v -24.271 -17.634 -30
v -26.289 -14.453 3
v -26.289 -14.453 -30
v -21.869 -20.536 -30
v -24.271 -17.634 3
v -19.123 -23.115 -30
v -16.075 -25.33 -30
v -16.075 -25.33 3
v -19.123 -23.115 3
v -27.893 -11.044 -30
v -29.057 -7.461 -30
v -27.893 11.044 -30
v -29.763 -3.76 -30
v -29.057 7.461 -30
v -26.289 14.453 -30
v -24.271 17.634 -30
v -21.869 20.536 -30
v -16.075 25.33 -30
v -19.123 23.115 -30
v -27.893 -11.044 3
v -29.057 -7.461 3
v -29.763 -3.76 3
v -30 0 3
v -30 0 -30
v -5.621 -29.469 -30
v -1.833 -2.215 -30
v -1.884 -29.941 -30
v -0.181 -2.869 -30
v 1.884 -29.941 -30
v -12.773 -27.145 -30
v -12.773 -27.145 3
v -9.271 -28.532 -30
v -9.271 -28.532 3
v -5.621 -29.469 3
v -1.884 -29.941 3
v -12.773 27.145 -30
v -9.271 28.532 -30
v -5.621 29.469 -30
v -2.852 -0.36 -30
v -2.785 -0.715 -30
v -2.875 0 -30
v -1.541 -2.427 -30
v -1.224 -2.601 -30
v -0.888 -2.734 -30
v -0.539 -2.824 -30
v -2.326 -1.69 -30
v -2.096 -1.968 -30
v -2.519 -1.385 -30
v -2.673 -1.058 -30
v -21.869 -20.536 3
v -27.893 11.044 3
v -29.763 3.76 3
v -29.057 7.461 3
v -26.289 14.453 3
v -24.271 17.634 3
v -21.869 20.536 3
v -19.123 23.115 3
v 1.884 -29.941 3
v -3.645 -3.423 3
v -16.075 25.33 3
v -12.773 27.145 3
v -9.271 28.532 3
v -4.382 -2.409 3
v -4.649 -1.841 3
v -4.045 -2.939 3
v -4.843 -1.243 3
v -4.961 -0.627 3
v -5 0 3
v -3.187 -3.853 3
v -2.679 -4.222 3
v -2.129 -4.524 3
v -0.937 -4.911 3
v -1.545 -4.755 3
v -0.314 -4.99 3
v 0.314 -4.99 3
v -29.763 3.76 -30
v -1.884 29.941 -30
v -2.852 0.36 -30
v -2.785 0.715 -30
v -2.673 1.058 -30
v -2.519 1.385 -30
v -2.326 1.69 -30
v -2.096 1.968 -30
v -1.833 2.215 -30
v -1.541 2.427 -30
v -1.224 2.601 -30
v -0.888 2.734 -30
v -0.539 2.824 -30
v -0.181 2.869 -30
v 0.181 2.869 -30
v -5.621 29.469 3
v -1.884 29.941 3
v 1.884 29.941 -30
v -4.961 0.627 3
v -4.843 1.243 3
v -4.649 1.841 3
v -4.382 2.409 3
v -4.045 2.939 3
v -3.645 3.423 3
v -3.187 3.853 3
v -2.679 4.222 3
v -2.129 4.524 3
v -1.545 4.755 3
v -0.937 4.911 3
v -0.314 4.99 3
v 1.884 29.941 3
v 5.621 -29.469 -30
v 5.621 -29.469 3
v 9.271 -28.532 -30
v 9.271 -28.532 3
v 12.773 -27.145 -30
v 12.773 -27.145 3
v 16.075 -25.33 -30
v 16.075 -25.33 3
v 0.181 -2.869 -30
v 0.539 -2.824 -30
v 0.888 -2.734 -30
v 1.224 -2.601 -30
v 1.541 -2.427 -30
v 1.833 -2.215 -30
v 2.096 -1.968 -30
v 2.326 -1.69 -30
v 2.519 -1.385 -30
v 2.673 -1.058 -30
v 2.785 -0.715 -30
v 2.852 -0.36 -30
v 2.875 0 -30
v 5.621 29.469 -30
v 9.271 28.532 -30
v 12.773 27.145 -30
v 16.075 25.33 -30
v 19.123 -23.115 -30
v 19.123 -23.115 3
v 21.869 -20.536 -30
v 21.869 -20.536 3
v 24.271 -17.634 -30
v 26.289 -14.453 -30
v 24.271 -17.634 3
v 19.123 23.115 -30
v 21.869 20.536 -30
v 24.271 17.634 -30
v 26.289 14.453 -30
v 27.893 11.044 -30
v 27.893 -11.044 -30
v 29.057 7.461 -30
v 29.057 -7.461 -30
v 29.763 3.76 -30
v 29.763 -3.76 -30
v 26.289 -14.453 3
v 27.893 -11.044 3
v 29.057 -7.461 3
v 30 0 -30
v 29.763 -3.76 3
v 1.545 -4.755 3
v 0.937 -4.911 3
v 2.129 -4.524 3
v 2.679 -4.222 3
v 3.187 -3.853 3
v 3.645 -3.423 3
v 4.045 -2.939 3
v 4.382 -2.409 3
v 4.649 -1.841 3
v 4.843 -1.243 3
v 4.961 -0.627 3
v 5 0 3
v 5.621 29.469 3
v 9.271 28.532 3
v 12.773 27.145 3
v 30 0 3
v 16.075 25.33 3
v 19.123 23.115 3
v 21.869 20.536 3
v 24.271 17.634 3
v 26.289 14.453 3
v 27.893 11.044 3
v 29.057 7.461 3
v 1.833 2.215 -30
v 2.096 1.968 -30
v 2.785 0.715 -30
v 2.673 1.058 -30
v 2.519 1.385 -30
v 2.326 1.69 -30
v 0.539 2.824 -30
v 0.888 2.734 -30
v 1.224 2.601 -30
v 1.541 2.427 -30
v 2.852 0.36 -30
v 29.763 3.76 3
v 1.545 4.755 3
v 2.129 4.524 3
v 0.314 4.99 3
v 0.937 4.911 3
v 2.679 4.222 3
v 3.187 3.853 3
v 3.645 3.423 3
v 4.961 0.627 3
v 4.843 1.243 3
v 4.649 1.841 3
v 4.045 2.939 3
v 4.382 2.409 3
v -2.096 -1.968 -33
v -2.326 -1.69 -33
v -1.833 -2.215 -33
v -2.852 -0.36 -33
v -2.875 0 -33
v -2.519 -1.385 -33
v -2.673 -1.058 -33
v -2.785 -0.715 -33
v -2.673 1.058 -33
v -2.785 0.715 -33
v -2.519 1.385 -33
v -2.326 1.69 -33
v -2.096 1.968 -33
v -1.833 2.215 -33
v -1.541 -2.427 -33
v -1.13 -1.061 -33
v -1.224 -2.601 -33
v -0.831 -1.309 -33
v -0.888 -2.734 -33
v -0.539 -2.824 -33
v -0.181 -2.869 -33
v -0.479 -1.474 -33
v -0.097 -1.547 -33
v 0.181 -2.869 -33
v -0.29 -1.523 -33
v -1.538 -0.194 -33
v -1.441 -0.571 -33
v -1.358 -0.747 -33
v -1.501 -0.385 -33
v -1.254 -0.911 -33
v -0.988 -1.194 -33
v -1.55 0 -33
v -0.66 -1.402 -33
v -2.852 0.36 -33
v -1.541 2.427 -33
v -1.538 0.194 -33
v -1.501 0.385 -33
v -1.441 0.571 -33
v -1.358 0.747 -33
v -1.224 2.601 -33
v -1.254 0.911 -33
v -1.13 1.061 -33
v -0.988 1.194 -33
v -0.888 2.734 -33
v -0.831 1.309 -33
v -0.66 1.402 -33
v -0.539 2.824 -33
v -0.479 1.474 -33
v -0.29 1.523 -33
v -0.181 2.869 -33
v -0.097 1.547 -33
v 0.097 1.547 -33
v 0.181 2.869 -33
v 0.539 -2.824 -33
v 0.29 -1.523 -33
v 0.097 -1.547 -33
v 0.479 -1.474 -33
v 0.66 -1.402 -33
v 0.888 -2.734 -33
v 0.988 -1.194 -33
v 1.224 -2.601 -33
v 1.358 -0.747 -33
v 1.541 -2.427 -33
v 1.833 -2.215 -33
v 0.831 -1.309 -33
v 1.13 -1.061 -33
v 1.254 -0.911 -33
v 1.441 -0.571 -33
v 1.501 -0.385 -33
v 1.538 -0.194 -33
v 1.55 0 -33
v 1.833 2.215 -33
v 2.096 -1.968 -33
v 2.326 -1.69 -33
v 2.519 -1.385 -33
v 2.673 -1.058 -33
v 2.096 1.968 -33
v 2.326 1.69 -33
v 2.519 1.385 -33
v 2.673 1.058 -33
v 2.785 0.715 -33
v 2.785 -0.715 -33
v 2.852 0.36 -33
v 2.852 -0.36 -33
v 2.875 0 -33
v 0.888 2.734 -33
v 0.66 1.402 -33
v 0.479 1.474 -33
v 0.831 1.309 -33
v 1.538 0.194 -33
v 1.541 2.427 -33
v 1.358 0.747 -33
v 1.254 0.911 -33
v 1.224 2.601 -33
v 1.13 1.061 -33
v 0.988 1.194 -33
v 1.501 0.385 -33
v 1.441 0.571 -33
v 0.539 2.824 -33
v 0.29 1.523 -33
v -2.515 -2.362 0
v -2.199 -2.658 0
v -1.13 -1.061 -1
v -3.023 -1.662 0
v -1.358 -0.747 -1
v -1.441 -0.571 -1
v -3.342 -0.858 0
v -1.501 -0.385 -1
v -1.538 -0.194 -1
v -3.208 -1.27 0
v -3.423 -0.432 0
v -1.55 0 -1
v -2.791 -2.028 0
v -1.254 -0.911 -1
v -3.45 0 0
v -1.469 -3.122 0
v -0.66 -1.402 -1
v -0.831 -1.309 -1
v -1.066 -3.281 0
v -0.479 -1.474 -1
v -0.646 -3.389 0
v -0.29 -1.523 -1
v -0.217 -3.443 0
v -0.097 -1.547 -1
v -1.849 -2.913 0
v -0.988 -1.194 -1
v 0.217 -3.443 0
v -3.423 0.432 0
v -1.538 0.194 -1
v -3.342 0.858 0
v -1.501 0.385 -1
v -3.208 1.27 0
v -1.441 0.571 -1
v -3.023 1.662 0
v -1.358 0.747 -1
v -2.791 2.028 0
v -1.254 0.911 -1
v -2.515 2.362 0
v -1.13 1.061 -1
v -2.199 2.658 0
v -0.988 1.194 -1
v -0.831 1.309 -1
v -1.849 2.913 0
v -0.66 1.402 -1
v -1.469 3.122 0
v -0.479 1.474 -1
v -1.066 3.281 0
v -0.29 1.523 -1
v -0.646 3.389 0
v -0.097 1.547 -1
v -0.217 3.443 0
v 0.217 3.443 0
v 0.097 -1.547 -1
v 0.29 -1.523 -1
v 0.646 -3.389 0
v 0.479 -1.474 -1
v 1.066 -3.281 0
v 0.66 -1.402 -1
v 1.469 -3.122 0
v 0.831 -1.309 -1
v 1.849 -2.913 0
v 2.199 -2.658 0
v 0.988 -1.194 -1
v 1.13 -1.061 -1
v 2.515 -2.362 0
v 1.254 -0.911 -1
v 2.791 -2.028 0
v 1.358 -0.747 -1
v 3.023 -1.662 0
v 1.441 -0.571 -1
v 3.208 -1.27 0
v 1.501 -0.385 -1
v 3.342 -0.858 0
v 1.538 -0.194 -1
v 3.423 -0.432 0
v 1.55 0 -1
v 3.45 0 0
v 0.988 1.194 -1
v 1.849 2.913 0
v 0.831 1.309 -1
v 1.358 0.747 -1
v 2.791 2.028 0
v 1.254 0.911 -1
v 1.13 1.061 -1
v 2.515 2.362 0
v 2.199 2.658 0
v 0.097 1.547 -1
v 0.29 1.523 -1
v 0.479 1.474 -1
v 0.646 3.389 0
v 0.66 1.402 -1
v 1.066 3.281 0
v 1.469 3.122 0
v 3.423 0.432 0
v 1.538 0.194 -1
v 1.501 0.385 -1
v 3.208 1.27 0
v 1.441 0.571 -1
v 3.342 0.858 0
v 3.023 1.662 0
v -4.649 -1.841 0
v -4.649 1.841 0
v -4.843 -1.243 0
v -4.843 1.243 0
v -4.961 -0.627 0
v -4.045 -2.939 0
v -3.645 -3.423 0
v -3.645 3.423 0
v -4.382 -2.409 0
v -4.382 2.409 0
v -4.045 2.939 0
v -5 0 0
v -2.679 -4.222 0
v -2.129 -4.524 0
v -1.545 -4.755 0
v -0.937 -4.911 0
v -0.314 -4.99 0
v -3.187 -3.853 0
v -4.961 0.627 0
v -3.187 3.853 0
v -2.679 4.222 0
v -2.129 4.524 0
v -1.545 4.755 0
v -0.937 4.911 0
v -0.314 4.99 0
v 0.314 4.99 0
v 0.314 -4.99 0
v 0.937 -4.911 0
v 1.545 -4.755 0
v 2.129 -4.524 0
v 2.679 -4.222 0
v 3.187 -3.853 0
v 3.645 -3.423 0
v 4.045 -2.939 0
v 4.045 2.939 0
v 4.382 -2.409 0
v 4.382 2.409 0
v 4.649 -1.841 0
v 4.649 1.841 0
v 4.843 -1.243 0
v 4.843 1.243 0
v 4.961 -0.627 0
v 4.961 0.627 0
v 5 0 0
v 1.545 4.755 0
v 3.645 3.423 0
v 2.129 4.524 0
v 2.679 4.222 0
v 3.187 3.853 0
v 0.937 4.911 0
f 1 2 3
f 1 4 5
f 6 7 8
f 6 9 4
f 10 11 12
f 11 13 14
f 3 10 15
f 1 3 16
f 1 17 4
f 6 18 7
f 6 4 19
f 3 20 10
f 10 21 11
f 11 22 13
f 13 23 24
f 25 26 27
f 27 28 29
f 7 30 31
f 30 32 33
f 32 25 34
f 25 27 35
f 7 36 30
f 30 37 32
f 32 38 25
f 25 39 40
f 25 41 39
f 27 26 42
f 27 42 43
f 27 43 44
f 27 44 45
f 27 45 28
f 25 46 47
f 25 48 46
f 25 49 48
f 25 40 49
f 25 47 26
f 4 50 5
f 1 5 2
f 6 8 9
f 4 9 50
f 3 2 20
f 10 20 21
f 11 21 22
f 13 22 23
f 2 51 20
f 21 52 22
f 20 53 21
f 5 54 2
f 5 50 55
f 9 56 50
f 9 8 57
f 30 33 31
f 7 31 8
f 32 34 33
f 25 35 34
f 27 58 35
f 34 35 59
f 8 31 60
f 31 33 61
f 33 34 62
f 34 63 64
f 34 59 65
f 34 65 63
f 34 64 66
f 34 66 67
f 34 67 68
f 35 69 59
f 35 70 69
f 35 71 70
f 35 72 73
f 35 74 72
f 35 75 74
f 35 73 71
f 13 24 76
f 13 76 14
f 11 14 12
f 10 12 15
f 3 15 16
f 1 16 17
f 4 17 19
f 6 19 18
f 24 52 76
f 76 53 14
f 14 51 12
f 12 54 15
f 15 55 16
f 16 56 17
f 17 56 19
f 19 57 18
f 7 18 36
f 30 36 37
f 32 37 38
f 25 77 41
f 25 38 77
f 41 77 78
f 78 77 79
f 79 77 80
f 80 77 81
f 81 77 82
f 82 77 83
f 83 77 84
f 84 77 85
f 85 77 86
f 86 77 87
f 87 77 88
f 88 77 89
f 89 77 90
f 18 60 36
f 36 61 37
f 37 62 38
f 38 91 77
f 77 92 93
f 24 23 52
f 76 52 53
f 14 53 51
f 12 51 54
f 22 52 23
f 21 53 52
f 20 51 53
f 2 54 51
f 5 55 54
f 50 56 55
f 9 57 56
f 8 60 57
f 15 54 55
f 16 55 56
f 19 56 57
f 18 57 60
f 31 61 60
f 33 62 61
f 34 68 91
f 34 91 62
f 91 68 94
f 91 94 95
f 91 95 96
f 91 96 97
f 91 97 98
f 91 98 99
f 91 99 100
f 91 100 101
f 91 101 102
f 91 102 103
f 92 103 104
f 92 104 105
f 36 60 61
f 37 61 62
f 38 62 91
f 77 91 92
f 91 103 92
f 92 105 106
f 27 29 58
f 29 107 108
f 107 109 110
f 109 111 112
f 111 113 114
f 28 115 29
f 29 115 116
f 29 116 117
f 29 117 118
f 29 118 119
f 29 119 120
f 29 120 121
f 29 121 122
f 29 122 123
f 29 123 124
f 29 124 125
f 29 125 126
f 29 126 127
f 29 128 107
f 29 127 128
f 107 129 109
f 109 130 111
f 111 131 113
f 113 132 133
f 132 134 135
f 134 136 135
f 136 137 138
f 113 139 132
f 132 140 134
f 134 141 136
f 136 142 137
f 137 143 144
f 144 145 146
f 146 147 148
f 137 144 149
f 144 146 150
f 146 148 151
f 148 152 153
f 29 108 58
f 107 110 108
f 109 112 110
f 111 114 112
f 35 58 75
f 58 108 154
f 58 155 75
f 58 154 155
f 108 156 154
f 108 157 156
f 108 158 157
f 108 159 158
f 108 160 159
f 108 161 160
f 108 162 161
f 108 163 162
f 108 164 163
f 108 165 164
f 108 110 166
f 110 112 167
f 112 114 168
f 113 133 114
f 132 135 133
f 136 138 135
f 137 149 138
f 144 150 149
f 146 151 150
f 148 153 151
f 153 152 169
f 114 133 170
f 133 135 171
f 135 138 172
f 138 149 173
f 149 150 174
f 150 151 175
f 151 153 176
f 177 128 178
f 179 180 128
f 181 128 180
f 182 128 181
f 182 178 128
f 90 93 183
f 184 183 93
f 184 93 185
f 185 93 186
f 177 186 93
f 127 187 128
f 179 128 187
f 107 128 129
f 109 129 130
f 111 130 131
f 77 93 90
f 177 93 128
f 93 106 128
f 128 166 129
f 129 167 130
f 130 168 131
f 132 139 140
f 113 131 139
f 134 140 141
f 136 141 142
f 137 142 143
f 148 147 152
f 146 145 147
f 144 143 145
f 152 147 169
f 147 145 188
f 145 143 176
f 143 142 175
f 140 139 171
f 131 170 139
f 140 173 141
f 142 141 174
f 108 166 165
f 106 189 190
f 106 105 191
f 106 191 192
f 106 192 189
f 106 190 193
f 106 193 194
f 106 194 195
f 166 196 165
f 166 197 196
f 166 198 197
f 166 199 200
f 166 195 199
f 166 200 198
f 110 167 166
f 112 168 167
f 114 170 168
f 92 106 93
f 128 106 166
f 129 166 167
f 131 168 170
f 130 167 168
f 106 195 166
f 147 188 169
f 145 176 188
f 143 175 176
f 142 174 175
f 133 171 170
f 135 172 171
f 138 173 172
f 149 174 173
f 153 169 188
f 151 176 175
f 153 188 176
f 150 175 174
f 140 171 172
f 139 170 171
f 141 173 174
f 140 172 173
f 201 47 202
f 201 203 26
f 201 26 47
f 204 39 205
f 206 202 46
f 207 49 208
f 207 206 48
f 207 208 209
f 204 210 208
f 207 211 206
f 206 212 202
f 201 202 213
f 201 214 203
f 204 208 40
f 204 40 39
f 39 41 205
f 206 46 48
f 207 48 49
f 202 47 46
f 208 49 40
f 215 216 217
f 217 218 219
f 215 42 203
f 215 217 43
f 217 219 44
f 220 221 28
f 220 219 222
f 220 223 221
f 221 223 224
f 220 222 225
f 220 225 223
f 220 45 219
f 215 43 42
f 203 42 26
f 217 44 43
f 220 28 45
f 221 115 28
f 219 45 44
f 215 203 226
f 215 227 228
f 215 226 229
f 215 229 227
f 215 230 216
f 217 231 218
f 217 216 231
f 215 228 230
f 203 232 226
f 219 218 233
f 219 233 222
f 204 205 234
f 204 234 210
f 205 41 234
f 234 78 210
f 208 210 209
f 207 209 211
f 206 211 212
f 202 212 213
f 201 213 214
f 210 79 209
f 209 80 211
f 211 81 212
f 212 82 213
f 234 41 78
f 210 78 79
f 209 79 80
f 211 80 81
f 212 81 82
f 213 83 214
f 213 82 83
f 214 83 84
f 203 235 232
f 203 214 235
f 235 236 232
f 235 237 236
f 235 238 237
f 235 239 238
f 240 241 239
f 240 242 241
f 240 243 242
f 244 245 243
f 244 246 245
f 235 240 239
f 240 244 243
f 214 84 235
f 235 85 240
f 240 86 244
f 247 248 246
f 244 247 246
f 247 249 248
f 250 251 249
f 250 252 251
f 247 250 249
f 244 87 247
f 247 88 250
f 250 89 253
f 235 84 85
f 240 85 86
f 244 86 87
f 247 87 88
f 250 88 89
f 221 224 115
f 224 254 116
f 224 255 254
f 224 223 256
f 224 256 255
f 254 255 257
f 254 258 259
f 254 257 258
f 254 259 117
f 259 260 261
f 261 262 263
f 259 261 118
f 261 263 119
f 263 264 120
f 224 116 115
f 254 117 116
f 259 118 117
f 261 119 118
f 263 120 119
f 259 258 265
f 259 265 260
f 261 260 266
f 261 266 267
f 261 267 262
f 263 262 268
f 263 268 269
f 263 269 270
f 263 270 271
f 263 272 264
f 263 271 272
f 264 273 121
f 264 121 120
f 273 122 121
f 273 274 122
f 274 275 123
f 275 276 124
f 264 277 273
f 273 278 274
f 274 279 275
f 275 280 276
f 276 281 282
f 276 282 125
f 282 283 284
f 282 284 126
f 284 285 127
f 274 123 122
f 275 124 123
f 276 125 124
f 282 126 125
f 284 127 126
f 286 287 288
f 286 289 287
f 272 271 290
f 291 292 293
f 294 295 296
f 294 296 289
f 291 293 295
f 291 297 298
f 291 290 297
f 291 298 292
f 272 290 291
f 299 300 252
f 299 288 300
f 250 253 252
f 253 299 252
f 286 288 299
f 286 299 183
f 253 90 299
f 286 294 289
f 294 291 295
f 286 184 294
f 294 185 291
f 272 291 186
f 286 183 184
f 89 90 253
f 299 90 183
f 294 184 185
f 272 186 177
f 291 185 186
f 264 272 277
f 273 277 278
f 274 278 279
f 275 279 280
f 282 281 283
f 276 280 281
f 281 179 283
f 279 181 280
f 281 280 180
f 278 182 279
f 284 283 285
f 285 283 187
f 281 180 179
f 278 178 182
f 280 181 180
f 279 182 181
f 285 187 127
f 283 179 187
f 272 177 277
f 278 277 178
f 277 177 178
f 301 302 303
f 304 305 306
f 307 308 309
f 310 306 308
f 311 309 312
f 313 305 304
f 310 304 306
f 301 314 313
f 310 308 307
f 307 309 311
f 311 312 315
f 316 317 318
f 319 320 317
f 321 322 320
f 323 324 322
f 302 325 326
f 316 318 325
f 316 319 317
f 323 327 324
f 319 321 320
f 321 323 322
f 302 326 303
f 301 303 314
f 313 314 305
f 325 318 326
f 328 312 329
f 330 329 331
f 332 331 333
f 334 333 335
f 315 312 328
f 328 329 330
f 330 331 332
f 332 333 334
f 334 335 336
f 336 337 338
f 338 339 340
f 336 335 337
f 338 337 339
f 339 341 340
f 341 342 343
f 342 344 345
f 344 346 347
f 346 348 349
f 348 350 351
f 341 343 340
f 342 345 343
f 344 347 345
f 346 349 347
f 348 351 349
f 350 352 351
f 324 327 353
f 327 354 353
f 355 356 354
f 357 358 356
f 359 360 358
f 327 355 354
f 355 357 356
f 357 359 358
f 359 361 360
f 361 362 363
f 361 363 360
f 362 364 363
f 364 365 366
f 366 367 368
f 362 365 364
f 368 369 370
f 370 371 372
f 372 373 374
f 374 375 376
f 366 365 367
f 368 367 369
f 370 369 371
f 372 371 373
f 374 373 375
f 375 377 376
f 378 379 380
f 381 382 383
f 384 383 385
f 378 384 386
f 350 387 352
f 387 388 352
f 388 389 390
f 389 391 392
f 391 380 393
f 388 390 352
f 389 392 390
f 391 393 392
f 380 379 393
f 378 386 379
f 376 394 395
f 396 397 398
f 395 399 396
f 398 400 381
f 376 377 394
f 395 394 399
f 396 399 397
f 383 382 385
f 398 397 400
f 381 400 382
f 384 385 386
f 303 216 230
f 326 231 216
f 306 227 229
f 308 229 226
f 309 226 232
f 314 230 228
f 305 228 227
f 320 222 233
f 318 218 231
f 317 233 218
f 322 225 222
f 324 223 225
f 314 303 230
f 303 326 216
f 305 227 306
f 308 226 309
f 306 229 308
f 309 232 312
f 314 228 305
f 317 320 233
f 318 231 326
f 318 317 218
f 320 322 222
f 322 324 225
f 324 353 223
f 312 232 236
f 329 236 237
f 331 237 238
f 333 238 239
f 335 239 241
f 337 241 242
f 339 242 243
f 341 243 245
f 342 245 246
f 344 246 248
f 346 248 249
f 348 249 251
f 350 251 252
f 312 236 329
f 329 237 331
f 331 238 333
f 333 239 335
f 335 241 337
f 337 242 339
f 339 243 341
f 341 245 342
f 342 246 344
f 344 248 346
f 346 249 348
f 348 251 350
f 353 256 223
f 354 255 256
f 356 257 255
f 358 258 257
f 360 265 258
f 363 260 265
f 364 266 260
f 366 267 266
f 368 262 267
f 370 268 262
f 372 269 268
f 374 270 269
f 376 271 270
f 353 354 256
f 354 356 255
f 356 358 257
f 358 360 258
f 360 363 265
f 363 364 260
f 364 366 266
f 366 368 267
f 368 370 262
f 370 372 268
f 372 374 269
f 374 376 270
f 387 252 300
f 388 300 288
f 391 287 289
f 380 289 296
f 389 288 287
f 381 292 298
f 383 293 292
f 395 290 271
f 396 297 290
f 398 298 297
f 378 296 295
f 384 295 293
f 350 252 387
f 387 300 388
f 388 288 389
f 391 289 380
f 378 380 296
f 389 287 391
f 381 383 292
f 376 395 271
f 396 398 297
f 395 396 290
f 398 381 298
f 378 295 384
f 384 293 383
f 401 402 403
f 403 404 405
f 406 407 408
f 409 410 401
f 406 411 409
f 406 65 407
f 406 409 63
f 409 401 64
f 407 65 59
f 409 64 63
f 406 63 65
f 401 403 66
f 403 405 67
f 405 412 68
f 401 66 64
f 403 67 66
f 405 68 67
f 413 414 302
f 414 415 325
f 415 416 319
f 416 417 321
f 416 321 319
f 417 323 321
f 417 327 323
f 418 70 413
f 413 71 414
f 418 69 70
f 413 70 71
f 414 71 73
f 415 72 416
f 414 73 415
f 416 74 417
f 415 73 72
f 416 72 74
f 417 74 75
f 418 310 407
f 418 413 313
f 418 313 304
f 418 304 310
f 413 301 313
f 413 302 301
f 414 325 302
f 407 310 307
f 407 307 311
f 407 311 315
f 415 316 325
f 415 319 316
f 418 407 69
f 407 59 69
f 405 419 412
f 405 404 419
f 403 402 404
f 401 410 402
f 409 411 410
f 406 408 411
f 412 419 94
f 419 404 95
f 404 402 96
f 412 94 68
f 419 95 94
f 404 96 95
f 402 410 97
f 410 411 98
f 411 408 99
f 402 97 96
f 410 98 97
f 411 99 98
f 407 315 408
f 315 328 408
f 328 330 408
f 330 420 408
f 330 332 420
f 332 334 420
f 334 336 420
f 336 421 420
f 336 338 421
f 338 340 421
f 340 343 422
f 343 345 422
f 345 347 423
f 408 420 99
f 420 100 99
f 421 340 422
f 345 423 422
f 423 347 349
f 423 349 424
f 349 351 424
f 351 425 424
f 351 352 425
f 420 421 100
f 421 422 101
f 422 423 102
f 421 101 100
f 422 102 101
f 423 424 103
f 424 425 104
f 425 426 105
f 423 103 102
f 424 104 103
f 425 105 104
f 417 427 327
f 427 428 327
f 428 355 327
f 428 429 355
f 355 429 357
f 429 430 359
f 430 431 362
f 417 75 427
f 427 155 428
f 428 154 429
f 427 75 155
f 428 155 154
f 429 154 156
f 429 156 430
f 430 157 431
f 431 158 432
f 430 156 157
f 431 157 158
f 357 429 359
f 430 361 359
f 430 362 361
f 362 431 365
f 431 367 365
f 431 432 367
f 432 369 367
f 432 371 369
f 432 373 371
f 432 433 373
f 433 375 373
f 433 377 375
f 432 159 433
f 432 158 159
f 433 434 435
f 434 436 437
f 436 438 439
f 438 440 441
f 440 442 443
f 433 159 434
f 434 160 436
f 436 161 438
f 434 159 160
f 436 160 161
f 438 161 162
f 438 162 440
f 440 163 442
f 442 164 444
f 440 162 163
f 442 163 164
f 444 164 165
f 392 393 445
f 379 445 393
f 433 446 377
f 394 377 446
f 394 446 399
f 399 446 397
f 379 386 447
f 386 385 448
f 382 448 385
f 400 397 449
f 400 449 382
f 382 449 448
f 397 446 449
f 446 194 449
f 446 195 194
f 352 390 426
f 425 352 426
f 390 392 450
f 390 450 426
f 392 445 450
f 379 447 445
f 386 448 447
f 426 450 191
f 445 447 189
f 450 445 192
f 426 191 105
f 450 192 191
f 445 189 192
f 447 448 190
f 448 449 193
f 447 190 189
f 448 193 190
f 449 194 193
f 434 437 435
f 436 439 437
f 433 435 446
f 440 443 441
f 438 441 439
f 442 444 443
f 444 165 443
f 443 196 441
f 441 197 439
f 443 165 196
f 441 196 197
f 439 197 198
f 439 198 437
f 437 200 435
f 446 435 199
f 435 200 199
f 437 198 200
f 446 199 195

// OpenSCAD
$fn = 50;


difference() {
	union() {
		translate(v = [0, 0, -30.0000000000]) {
			cylinder(h = 33, r = 30.0000000000);
		}
		#translate(v = [0, 0, -33.0000000000]) {
			cylinder(h = 33, r = 2.8750000000);
		}
	}
	union() {
		translate(v = [0, 0, 0]) {
			rotate(a = [0, 0, 0]) {
				difference() {
					union() {
						translate(v = [0, 0, -33.0000000000]) {
							cylinder(h = 33, r = 1.2500000000);
						}
						translate(v = [0, 0, -1.0000000000]) {
							cylinder(h = 1.0000000000, r1 = 1.5500000000, r2 = 3.4500000000);
						}
						translate(v = [0, 0, -33.0000000000]) {
							cylinder(h = 33, r = 1.5500000000);
						}
						translate(v = [0, 0, -33.0000000000]) {
							cylinder(h = 33, r = 1.2500000000);
						}
					}
					union();
				}
			}
		}
		#cylinder(h = 3, r = 5.0000000000);
	}
}
